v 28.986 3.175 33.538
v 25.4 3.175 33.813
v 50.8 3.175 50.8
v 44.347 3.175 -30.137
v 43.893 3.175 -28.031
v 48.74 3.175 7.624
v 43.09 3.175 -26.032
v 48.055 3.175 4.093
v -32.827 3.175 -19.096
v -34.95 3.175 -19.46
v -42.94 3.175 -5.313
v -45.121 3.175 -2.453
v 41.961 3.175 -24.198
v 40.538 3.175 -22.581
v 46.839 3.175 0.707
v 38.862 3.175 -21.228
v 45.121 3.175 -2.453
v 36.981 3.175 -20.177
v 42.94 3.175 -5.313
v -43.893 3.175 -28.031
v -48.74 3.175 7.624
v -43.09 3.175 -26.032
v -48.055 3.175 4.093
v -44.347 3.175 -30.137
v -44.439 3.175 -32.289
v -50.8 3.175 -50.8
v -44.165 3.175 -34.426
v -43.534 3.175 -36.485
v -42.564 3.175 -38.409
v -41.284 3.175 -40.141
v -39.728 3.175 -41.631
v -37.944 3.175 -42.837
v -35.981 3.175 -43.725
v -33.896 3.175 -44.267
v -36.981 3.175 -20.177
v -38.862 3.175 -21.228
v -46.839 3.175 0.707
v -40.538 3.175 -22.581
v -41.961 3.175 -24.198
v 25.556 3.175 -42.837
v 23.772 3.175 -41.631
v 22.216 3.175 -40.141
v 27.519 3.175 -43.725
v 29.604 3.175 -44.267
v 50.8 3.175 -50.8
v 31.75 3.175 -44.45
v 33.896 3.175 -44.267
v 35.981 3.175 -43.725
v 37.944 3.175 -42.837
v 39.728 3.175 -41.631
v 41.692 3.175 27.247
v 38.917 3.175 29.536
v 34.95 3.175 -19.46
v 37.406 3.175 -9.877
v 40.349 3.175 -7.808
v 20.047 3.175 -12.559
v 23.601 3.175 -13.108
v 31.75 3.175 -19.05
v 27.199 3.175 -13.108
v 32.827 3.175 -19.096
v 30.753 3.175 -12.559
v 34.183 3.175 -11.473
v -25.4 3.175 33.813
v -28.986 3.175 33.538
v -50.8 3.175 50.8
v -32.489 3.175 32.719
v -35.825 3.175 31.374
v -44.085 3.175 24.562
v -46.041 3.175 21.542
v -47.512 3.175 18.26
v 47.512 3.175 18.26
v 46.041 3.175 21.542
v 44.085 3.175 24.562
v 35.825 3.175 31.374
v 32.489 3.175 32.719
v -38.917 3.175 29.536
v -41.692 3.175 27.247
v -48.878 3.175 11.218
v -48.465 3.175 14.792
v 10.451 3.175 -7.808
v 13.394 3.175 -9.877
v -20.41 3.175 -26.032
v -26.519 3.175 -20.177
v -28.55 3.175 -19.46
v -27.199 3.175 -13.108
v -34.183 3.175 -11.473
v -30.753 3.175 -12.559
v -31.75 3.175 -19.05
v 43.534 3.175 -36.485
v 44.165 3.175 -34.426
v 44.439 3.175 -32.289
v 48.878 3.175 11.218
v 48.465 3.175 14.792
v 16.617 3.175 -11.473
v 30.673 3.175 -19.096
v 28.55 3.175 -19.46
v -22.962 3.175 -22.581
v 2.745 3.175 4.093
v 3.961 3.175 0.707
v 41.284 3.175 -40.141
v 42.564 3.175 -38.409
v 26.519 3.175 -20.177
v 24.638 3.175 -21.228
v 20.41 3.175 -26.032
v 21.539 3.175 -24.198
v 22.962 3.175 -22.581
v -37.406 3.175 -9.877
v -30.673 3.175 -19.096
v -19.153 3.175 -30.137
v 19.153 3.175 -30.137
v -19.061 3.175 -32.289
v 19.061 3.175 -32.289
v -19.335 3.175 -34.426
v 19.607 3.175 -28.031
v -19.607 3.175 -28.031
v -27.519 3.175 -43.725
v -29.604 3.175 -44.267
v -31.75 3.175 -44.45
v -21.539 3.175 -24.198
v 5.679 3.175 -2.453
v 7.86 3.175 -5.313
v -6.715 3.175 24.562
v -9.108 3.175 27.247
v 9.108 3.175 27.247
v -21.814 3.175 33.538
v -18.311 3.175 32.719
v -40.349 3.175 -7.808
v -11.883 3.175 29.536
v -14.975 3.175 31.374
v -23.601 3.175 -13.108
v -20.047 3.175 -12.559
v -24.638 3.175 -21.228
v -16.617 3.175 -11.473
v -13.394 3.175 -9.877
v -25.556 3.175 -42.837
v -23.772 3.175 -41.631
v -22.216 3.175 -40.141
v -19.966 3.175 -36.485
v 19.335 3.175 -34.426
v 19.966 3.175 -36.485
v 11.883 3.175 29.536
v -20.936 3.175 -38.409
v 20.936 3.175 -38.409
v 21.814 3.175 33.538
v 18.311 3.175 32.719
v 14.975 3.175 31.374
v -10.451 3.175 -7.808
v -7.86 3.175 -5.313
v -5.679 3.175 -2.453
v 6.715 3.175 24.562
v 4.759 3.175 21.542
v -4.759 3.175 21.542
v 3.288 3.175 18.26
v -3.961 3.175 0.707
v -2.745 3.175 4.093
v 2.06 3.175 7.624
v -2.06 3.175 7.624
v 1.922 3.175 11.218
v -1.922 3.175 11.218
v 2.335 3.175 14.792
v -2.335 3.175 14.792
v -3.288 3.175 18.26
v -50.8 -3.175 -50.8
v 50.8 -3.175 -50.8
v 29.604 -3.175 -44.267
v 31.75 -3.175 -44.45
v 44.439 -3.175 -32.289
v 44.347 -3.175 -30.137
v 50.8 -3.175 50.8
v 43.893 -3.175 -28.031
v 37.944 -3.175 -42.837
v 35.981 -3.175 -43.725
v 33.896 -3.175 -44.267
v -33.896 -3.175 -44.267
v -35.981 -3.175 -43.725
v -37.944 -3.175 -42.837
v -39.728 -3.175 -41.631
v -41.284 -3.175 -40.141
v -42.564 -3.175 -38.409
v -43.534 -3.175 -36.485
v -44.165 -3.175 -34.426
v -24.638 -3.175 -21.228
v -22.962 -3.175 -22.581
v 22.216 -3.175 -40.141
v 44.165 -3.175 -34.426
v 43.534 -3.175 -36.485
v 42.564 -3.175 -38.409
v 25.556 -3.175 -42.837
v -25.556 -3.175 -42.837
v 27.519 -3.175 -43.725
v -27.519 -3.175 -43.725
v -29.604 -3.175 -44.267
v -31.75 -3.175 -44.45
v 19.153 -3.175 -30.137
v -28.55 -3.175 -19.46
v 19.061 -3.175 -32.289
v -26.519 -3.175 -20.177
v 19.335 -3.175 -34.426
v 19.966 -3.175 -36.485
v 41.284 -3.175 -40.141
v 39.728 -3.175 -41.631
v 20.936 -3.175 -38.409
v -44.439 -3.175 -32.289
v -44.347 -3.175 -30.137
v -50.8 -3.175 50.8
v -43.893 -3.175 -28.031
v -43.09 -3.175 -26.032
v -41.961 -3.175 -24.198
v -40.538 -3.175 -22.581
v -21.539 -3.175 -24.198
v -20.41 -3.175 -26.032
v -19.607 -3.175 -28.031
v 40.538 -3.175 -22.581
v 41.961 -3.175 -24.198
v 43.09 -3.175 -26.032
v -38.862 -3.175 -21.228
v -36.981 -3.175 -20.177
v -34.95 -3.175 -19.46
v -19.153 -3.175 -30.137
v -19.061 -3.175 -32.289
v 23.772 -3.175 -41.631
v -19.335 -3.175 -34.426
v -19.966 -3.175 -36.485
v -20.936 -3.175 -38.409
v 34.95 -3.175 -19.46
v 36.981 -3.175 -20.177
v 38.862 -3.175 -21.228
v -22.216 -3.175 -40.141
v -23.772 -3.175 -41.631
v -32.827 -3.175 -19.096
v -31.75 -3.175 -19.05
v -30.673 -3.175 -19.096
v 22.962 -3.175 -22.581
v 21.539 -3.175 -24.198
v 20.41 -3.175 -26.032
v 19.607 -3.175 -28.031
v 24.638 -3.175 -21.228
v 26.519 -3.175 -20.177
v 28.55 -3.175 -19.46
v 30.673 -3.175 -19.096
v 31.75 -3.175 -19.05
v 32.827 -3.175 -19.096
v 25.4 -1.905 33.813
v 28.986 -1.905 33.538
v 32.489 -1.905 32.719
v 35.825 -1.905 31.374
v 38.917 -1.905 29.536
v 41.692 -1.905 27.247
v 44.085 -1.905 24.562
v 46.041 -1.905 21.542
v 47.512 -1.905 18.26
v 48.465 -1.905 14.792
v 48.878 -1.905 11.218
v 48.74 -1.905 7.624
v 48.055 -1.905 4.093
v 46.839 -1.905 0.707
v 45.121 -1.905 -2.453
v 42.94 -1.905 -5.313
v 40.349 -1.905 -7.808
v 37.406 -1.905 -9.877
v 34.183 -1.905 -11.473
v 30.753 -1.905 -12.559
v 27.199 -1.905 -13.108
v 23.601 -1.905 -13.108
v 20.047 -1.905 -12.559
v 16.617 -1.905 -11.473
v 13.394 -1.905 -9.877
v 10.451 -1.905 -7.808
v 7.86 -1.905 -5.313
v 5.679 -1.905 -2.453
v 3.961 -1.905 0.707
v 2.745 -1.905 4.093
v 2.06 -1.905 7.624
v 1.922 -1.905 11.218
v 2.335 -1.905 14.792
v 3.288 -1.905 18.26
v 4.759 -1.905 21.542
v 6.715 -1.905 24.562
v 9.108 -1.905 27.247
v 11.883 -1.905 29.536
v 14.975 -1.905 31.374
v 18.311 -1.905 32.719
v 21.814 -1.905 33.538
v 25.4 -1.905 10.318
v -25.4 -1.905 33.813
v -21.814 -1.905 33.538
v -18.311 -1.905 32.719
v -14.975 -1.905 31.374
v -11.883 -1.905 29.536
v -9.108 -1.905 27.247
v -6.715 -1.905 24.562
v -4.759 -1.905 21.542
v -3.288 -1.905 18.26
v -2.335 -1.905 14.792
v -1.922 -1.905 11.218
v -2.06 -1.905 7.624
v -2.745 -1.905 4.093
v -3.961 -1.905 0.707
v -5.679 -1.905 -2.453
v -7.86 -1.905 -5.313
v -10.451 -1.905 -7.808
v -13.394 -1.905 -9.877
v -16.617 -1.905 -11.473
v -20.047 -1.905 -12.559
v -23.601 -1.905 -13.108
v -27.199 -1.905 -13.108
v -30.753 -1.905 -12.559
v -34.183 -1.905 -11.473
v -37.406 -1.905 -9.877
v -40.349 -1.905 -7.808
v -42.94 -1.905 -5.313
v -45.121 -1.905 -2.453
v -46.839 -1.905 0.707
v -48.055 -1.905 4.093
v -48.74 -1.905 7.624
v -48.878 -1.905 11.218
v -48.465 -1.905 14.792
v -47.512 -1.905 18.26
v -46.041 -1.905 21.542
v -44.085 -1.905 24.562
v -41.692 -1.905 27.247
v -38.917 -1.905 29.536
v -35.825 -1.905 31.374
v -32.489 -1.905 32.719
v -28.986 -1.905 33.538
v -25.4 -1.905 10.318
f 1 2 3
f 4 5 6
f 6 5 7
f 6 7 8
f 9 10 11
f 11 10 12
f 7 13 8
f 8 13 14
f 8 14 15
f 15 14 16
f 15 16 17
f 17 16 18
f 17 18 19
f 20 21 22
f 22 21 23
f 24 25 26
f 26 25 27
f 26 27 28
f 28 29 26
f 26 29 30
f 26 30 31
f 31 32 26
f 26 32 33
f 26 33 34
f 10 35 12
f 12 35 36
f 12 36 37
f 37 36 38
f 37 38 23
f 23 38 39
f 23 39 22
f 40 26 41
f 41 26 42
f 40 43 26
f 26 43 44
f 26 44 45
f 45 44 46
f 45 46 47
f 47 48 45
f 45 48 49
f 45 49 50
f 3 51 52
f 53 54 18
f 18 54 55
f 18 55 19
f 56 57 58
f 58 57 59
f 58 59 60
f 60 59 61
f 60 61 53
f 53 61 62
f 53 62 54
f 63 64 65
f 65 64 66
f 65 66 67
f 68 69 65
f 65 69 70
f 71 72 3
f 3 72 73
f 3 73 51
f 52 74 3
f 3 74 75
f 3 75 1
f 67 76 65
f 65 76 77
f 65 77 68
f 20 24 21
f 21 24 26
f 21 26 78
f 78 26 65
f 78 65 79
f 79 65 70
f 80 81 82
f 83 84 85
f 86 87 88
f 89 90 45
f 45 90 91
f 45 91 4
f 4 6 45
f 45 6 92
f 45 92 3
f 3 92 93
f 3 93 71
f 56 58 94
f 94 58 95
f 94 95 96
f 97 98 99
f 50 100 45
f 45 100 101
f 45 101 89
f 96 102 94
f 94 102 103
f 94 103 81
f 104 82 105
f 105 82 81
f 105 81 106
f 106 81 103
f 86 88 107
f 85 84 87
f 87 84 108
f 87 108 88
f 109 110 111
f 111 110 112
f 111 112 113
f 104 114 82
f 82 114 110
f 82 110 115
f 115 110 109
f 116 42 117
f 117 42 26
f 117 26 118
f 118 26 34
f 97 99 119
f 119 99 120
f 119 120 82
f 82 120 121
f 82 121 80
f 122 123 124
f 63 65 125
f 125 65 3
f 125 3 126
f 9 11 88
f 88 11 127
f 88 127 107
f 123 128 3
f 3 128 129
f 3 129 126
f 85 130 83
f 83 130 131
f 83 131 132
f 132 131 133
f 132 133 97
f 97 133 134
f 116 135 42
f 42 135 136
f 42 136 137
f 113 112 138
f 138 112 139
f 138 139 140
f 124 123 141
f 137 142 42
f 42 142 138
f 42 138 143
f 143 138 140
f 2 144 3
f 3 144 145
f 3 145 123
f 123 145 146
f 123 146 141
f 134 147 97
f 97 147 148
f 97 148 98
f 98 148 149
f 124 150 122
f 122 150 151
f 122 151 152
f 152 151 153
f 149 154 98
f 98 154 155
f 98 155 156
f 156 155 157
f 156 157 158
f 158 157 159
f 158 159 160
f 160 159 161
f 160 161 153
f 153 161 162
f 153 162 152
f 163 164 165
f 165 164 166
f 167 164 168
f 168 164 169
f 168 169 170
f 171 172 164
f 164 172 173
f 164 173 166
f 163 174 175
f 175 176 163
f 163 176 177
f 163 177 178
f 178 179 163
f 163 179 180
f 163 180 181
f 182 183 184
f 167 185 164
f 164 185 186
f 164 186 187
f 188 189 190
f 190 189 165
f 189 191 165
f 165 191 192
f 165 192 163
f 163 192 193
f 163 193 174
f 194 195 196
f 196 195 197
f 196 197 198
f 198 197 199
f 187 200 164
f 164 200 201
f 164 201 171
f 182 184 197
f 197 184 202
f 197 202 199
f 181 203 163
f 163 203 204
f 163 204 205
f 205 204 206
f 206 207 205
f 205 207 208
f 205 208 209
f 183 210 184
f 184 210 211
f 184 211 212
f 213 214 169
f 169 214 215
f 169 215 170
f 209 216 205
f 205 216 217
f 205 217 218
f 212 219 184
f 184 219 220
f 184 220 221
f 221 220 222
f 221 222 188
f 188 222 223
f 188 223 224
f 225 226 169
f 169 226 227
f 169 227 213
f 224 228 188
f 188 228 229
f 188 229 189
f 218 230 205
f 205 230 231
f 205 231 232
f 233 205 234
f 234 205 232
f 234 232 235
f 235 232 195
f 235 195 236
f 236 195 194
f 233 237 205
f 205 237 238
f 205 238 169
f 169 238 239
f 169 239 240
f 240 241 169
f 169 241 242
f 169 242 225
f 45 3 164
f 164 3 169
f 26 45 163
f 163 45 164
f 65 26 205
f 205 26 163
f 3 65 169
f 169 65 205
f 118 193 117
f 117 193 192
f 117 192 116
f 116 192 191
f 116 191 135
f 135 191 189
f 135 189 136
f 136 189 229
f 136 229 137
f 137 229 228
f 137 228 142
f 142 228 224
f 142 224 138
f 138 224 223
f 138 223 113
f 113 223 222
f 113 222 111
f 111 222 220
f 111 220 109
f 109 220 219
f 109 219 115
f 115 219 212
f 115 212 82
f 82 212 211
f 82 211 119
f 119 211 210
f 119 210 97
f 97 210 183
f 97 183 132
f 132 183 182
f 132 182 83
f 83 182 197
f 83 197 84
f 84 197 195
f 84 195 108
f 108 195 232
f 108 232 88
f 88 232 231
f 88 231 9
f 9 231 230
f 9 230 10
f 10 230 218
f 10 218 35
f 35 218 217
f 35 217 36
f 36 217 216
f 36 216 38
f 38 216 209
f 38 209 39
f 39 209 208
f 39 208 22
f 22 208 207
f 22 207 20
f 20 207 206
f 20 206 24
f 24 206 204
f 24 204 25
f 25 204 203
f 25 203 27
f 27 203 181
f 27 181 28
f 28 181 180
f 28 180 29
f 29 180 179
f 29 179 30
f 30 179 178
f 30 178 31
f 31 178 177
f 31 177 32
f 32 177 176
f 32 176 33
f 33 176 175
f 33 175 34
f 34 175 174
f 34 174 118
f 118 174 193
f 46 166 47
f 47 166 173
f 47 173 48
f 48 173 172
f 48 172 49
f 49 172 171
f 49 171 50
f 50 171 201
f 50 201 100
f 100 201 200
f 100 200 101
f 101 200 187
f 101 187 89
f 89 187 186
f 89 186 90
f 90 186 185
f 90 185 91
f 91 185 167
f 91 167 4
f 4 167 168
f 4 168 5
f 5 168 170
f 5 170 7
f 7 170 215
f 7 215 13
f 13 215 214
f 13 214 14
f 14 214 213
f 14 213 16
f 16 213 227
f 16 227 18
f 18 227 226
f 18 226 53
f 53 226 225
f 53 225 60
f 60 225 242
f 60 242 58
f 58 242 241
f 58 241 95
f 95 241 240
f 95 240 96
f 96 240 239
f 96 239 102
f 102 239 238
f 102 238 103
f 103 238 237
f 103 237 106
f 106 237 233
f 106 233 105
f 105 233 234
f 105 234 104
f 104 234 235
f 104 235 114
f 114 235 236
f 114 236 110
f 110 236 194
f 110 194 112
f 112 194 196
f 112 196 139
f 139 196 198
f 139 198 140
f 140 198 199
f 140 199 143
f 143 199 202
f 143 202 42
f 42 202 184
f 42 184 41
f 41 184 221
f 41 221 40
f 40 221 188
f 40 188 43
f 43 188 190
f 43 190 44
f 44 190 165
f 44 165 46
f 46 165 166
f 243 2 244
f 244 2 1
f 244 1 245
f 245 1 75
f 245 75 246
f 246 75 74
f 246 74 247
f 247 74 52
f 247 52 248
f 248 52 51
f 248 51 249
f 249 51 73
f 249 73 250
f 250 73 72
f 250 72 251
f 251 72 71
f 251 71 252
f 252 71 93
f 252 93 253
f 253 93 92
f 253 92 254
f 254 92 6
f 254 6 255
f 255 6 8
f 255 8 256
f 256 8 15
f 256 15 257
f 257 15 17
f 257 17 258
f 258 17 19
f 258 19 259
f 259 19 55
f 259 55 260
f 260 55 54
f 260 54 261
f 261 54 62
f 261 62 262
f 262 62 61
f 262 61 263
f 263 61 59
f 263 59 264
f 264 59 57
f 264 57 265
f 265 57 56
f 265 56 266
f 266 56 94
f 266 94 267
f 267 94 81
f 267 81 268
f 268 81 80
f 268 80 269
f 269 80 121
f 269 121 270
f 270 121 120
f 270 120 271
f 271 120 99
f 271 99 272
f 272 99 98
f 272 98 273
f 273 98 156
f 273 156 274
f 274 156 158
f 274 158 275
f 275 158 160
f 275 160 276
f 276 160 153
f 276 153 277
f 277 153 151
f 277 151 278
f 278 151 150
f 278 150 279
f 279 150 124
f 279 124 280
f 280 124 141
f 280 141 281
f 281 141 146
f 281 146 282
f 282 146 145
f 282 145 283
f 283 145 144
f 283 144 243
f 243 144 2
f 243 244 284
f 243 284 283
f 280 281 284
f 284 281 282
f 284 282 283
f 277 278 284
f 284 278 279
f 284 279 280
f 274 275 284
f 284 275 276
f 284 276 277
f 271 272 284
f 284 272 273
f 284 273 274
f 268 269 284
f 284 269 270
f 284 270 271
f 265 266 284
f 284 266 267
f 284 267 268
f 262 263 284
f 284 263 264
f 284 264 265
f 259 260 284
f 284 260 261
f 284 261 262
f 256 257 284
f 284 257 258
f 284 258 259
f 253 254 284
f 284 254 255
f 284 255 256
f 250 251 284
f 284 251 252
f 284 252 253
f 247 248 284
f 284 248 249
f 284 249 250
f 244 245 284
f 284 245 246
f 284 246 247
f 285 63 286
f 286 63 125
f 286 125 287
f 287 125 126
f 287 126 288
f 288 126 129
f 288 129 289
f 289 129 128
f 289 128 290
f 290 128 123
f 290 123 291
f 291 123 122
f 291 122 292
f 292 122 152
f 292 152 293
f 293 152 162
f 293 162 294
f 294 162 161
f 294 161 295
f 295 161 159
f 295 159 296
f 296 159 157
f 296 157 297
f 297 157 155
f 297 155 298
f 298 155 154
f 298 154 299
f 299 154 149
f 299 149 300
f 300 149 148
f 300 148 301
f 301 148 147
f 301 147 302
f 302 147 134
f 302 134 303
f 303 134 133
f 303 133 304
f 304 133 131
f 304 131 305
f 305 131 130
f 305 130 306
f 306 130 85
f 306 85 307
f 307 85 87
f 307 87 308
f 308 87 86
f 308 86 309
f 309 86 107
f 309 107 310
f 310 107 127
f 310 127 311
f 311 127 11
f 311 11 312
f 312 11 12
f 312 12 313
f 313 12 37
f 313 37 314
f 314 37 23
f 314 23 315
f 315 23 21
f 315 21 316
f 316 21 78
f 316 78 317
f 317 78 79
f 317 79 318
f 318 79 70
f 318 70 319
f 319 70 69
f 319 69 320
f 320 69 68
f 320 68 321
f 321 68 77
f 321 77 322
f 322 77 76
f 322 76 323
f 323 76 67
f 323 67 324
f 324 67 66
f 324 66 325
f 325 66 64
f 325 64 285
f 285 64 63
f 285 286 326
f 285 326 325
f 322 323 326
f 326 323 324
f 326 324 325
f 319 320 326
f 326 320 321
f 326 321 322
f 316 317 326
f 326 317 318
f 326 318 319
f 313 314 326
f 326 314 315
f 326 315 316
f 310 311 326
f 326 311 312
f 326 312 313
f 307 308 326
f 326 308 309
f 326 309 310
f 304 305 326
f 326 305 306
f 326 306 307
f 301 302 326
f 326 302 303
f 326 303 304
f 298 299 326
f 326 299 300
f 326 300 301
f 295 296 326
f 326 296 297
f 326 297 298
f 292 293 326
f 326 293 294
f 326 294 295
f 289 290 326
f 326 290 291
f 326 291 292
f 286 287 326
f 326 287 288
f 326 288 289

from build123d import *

# Parameters (mm, degrees)
SKETCH1_W           = 101.6
SKETCH1_H           = 101.6
SKETCH1_R           = 12.7
BOSS_EXTRUDE1_DEPTH = 3.175
SKETCH2_R           = 23.495
CUT_EXTRUDE1_DEPTH  = 5.08


with BuildPart() as part:
    # Sketch1 → Boss-Extrude1 (new body, symmetric)
    with BuildSketch(Plane(origin=(0, 0, 0), x_dir=(1, 0, 0), z_dir=(0, 1, 0))):
        Rectangle(SKETCH1_W, SKETCH1_H)
        with Locations((-31.75, 31.75)):
            Circle(SKETCH1_R, mode=Mode.SUBTRACT)
        with Locations((31.75, 31.75)):
            Circle(SKETCH1_R, mode=Mode.SUBTRACT)
    extrude(amount=BOSS_EXTRUDE1_DEPTH, both=True)

    # Sketch2 → Cut-Extrude1 (cut)
    with BuildSketch(Plane(origin=(0, 3.175, 0), x_dir=(1, 0, 0), z_dir=(0, 1, 0))):
        with Locations((-25.4, -10.318450471)):
            Circle(SKETCH2_R)
        with Locations((25.4, -10.318450471)):
            Circle(SKETCH2_R)
    extrude(amount=-CUT_EXTRUDE1_DEPTH, mode=Mode.SUBTRACT)


solid = part.part
